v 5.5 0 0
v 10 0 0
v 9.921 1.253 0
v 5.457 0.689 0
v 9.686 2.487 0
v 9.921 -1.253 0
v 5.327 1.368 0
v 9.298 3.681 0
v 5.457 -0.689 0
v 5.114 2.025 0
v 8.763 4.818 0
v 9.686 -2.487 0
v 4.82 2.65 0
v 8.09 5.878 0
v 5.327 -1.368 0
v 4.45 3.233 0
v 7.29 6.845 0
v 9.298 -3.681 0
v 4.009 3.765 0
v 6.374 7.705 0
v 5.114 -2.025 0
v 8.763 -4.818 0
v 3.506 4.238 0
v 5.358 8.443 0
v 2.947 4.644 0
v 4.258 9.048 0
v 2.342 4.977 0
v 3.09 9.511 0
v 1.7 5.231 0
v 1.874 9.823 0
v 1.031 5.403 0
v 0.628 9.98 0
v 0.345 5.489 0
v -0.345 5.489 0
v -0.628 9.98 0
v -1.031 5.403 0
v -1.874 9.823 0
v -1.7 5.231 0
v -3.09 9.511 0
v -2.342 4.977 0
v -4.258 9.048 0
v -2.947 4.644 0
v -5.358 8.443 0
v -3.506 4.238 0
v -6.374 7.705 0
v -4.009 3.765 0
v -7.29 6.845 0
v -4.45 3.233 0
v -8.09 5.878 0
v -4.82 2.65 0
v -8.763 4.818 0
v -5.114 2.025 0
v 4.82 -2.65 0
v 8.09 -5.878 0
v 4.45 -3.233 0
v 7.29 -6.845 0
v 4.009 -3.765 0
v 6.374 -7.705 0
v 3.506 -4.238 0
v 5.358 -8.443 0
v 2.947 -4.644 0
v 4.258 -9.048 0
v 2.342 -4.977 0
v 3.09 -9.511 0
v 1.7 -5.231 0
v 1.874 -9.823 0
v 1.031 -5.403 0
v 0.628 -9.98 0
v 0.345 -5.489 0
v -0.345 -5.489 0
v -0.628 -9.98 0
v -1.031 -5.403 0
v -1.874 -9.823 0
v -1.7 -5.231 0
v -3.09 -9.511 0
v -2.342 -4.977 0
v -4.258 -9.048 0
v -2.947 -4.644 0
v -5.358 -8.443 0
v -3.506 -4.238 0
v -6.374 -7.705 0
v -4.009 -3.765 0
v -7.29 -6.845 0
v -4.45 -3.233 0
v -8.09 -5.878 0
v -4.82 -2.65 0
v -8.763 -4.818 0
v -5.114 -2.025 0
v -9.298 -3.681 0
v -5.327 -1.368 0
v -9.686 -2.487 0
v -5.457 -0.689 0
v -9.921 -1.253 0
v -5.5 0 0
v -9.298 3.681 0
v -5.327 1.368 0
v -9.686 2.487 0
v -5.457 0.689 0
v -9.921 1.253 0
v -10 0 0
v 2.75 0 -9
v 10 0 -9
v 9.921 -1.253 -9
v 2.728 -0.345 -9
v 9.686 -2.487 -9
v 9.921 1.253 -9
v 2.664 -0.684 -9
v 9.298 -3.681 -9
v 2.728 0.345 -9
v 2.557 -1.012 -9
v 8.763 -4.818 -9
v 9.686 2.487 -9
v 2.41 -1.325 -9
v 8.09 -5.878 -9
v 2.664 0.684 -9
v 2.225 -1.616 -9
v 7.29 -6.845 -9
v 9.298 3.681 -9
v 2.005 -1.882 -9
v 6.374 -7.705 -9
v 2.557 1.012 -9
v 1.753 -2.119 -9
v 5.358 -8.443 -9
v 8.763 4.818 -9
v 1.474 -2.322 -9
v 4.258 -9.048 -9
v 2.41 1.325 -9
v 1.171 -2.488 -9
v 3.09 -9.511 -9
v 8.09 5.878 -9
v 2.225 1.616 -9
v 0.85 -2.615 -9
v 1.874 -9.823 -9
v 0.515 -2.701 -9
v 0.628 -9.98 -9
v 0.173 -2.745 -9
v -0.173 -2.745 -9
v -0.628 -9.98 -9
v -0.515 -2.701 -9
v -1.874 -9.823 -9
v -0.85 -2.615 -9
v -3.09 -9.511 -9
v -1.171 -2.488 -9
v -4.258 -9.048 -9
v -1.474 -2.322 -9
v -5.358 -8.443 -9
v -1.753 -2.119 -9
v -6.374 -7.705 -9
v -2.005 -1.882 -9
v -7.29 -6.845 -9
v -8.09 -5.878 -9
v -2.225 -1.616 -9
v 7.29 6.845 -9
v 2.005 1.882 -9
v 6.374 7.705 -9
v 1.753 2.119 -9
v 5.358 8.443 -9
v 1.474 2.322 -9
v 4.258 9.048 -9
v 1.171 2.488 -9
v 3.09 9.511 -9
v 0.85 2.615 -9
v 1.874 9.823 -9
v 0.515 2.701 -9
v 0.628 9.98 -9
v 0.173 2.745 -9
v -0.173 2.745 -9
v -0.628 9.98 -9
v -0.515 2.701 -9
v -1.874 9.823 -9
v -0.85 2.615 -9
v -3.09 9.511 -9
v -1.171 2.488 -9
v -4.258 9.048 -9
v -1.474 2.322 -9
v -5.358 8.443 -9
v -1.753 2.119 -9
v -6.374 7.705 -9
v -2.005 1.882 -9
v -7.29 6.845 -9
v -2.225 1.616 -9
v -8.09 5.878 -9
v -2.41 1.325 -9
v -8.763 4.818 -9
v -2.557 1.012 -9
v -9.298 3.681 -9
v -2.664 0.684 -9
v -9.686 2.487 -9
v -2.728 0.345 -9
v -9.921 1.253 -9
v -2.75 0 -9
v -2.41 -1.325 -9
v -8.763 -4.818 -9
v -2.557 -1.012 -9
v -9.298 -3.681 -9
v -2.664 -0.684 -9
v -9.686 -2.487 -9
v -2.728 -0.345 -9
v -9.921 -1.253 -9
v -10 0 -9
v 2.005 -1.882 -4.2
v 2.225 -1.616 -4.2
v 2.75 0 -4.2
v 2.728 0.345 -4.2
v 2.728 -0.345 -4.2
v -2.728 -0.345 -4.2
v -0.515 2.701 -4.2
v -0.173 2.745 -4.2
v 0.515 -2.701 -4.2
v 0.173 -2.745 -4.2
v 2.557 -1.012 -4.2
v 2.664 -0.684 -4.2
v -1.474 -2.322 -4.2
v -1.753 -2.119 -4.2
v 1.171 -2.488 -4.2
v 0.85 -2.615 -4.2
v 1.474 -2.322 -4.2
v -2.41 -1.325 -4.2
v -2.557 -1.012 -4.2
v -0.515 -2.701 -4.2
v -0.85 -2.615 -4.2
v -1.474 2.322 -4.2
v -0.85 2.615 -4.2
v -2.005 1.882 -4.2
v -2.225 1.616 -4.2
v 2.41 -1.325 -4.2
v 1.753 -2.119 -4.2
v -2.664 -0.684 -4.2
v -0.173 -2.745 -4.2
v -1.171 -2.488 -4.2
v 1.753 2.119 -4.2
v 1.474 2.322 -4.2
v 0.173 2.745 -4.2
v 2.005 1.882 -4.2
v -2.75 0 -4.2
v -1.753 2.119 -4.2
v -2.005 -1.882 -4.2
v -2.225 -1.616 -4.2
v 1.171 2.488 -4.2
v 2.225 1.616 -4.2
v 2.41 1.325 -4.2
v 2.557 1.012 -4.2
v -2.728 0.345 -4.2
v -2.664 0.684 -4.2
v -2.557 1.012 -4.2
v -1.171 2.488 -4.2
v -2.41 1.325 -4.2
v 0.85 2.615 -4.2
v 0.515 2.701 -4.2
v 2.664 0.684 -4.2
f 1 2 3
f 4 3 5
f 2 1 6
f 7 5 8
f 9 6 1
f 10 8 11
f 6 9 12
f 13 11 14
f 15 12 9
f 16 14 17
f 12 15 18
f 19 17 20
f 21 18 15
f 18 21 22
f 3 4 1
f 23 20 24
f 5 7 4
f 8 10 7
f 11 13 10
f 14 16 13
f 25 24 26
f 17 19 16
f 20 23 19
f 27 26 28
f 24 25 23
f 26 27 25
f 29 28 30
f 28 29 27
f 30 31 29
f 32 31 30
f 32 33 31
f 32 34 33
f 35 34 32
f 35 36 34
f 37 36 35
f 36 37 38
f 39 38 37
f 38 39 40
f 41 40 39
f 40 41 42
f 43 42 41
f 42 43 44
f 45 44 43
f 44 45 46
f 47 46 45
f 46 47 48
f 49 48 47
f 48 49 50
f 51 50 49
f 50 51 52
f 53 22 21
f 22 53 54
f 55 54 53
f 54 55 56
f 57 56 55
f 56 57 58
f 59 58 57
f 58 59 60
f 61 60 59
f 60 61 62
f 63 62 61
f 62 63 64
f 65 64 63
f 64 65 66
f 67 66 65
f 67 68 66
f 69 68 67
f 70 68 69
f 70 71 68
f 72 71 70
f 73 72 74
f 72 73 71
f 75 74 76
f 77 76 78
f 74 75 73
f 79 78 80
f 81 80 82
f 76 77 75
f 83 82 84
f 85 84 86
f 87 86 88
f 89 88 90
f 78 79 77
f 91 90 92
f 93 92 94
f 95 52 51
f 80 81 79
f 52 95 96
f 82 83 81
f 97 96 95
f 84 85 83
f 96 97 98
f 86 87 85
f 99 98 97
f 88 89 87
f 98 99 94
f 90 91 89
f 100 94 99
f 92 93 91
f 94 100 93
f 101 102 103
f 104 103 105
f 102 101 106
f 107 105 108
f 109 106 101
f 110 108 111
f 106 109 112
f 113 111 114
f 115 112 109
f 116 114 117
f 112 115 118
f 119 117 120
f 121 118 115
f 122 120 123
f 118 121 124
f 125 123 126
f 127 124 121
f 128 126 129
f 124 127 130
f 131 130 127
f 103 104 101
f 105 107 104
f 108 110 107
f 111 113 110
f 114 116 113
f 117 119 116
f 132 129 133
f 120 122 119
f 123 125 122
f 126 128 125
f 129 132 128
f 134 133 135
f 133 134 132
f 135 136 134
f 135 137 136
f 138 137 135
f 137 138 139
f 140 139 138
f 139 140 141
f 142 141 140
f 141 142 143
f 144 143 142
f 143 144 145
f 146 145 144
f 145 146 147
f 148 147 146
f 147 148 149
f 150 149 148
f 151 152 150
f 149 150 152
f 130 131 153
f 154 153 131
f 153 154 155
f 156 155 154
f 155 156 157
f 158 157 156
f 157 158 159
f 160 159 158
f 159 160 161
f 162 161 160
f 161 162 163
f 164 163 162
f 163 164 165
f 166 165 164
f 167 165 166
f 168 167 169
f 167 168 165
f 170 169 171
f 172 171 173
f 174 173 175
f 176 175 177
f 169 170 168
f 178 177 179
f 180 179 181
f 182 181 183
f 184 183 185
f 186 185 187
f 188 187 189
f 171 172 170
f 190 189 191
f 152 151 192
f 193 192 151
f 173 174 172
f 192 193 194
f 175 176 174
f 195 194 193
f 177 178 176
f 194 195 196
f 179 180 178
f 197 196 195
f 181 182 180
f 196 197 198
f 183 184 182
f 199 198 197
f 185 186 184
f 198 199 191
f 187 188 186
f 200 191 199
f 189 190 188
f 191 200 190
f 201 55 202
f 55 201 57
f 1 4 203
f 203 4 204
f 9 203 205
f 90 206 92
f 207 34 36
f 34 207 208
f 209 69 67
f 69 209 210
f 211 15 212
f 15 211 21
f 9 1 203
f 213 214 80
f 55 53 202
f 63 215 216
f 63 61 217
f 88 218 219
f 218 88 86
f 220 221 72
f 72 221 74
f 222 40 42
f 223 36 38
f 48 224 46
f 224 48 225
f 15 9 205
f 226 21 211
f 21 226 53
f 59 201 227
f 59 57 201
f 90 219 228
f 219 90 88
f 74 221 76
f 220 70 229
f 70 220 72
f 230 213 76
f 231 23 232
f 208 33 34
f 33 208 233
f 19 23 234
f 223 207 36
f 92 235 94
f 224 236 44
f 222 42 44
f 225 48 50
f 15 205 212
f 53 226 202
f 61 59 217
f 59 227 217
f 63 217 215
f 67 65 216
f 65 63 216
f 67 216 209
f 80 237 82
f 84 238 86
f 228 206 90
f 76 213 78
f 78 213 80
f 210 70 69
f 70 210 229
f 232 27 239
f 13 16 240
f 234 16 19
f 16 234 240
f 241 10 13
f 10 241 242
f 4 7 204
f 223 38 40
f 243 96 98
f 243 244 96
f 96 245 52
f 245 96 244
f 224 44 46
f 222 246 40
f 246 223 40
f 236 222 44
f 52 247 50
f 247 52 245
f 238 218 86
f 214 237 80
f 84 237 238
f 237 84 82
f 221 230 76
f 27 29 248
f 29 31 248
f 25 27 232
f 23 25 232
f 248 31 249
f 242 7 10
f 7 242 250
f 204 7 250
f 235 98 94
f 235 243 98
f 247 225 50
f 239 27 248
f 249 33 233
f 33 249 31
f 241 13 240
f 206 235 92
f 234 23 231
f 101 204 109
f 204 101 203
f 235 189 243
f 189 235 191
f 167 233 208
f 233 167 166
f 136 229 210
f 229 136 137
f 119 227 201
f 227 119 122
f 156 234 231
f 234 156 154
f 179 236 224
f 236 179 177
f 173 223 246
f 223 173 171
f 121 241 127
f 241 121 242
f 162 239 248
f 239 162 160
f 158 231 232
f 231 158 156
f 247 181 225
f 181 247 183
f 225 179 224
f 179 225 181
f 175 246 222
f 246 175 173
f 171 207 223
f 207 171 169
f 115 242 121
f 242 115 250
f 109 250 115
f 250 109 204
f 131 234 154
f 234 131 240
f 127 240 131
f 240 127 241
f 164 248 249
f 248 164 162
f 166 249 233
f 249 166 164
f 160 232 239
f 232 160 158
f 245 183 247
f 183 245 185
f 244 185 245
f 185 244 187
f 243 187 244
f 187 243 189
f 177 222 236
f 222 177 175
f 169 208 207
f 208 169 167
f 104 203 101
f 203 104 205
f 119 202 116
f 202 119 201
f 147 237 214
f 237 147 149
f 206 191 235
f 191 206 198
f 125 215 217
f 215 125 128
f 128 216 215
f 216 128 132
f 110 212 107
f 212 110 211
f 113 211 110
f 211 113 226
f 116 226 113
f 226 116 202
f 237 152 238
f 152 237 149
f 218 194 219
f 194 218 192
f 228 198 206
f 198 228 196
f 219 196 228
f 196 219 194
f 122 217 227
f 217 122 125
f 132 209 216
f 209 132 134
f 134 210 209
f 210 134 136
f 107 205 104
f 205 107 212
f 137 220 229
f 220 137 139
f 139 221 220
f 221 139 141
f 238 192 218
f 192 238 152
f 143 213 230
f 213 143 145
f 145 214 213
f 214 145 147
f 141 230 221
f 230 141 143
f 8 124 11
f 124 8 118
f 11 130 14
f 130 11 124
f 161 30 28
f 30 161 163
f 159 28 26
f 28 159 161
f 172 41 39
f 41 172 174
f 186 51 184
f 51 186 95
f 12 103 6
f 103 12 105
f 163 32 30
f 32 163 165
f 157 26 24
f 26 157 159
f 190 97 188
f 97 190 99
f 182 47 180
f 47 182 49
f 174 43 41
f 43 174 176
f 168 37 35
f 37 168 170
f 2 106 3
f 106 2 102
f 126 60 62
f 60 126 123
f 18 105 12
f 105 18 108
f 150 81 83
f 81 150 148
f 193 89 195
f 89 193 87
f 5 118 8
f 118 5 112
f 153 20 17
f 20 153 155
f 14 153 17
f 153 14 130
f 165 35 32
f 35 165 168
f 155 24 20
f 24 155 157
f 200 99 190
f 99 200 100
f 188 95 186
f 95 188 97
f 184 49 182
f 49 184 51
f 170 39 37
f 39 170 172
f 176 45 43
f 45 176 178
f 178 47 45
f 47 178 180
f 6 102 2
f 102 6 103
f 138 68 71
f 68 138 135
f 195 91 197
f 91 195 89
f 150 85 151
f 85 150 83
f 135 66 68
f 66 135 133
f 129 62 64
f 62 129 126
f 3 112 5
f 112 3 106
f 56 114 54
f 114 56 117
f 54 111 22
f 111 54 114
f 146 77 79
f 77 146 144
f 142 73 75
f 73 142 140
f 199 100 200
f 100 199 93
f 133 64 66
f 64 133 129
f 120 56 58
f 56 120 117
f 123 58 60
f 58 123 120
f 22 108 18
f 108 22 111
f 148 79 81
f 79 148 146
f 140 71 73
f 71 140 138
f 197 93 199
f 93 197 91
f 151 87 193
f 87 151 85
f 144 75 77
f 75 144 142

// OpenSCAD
$fn = 50;


difference() {
	union() {
		translate(v = [0, 0, -9.0000000000]) {
			cylinder(h = 9, r = 10.0000000000);
		}
		cylinder(h = 0, r = 16.0000000000);
	}
	union() {
		translate(v = [0, 0, 0]) {
			rotate(a = [0, 0, 0]) {
				difference() {
					union() {
						#translate(v = [0, 0, -9.0000000000]) {
							cylinder(h = 9, r = 2.2500000000);
						}
						#translate(v = [0, 0, -4.2000000000]) {
							cylinder(h = 4.2000000000, r1 = 2.7500000000, r2 = 5.5000000000);
						}
						#translate(v = [0, 0, -9.0000000000]) {
							cylinder(h = 9, r = 2.7500000000);
						}
						#translate(v = [0, 0, -9.0000000000]) {
							cylinder(h = 9, r = 2.2500000000);
						}
					}
					union();
				}
			}
		}
	}
}
